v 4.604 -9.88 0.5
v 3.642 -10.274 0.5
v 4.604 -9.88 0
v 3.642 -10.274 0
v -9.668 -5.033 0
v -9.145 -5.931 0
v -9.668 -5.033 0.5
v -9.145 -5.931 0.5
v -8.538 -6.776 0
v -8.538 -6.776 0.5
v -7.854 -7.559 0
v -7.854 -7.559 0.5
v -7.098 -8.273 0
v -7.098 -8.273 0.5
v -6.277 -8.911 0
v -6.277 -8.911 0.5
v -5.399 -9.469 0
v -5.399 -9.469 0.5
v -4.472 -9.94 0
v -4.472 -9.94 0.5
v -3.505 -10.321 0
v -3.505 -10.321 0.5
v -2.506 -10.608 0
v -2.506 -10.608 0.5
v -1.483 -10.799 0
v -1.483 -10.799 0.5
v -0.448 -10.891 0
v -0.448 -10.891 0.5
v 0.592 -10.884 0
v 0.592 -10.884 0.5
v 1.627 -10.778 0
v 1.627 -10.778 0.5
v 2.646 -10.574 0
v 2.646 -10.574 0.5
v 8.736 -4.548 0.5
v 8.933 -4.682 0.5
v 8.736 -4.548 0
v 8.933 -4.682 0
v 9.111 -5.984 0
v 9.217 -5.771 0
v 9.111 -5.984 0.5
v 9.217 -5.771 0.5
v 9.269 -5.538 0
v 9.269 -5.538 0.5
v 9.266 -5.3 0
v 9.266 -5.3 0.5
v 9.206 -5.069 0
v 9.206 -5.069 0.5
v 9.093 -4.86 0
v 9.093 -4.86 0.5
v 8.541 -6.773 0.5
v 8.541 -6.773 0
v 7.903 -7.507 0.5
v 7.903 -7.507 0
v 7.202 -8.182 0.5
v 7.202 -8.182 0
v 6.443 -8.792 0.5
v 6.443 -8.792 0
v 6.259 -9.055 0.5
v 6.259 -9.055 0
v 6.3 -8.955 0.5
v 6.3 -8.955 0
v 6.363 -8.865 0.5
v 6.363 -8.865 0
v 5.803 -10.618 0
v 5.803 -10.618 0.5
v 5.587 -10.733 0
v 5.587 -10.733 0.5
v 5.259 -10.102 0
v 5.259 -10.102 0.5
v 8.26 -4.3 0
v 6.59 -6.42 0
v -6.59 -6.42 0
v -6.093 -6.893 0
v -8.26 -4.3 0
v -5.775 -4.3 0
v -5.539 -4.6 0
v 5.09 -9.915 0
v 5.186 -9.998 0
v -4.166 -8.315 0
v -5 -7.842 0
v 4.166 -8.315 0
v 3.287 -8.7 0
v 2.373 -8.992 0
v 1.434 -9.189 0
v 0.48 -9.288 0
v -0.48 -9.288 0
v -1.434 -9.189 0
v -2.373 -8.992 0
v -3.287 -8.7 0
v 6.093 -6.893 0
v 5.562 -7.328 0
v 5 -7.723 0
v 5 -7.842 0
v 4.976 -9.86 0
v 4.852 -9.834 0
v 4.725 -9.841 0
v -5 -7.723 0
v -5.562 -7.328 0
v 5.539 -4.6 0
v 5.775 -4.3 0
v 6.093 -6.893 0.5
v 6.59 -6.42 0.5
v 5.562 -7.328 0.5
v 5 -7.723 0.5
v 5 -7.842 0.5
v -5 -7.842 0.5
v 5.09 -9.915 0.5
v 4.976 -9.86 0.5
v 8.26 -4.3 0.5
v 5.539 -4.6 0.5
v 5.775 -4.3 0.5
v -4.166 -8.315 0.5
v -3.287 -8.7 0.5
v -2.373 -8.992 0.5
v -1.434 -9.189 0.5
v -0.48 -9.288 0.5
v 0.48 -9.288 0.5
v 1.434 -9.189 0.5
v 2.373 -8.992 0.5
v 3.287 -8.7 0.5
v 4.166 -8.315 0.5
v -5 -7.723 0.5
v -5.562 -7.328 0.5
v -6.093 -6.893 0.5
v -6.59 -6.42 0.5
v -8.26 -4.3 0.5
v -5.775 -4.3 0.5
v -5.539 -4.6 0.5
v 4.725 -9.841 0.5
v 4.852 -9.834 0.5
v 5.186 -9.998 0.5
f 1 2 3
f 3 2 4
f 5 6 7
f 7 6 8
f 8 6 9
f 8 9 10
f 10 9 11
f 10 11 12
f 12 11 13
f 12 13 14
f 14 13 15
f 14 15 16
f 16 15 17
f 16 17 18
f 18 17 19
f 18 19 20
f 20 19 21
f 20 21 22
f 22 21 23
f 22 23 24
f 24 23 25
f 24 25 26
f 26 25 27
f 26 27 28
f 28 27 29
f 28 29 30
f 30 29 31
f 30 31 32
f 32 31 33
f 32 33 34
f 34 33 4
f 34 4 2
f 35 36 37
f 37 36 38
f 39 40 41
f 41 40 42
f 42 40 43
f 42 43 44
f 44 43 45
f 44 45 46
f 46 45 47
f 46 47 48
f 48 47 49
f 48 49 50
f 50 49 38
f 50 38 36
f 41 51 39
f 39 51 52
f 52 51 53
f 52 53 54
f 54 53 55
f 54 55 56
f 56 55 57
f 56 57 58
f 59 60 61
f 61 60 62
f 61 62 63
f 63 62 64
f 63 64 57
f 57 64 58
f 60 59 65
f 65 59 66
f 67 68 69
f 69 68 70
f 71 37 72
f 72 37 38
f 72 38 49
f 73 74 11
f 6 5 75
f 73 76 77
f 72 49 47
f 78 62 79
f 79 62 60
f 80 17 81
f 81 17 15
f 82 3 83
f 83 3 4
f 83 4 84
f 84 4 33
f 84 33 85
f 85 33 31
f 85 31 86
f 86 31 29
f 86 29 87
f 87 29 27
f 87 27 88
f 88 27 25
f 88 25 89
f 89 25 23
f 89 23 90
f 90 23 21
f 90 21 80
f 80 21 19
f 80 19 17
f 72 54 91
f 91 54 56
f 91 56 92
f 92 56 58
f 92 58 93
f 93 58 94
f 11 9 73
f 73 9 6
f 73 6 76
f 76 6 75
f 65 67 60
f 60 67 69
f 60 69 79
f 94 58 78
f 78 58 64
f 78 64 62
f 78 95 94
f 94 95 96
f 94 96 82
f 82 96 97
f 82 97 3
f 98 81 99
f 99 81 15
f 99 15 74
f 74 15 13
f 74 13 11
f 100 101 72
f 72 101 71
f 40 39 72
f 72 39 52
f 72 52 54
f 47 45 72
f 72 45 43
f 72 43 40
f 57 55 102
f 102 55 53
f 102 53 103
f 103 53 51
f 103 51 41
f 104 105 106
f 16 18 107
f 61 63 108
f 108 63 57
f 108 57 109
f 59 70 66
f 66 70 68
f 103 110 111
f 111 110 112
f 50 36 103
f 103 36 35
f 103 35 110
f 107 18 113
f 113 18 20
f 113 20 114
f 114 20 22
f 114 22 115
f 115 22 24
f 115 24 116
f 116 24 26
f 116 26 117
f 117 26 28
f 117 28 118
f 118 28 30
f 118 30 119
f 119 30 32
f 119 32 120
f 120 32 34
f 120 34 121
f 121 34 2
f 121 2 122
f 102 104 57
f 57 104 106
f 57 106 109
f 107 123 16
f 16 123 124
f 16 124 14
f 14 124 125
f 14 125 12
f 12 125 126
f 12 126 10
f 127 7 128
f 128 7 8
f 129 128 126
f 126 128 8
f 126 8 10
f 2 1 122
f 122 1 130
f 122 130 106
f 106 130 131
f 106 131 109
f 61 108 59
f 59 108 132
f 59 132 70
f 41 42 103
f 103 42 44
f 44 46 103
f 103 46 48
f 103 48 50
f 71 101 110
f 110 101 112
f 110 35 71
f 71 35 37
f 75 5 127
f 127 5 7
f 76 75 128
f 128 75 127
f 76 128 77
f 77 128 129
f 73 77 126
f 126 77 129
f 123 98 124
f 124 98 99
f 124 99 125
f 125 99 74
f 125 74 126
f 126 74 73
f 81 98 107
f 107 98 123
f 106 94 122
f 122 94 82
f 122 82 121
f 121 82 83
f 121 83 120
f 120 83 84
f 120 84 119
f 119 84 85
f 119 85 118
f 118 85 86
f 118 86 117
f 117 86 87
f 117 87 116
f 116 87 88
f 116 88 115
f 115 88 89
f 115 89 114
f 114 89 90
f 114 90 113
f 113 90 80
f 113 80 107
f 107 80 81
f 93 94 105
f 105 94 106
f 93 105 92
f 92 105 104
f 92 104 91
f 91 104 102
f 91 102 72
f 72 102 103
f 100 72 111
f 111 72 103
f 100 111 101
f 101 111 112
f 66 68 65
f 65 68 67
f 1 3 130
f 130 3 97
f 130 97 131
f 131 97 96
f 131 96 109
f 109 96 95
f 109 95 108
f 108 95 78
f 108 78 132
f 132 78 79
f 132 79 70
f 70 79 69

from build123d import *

# Parameters (mm, degrees)
OTHER_10076_5_DEPTH = 0.5
CUT_EXTRUDE1_START  = -0.5
CUT_EXTRUDE1_DEPTH  = 0.5


# Read off the part's stored shape, not the designer's step: 10076-5
with BuildPart() as part:
    # Other 10076-5 outline → Other 10076-5 (new body)
    with BuildSketch(Plane.XY):
        with BuildLine():
            ThreePointArc((7.573674013, -9.436602245), (7.668819519, -9.359444812), (7.763179028, -9.281328104))
            Line((7.763179028, -9.281328104), (7.919995926, -7.488902759))
            ThreePointArc((7.919995926, -7.488902759), (8.548470738, -6.76266575), (9.110578105, -5.983925684))
            ThreePointArc((9.110578105, -5.983925684), (9.242448569, -5.182849851), (8.736493865, -4.547930843))
            Line((8.736493865, -4.547930843), (8.260223146, -4.3))
            Line((8.260223146, -4.3), (5.774945887, -4.3))
            ThreePointArc((5.774945887, -4.3), (5.659072475, -4.451392897), (5.53923133, -4.5996648))
            Line((5.53923133, -4.5996648), (6.59, -6.419649523))
            ThreePointArc((6.59, -6.419649523), (5.831509763, -7.1157216), (5, -7.722693831))
            Line((5, -7.722693831), (5, -7.841555968))
            ThreePointArc((5, -7.841555968), (0, -9.3), (-5, -7.841555968))
            Line((-5, -7.841555968), (-5, -7.722693831))
            ThreePointArc((-5, -7.722693831), (-5.831509763, -7.1157216), (-6.59, -6.419649523))
            Line((-6.59, -6.419649523), (-5.53923133, -4.5996648))
            ThreePointArc((-5.53923133, -4.5996648), (-5.659072475, -4.451392897), (-5.774945887, -4.3))
            Line((-5.774945887, -4.3), (-8.260223146, -4.3))
            Line((-8.260223146, -4.3), (-10.732831081, -5.58715822))
            ThreePointArc((-10.732831081, -5.58715822), (-10.675718173, -5.6955282), (-10.617511084, -5.803314431))
            Line((-10.617511084, -5.803314431), (-9.055174855, -6.258693914))
            ThreePointArc((-9.055174855, -6.258693914), (-8.704696722, -6.64117368), (-8.882127626, -7.128661083))
            Line((-8.882127626, -7.128661083), (-9.436602245, -7.573674013))
            ThreePointArc((-9.436602245, -7.573674013), (-9.359444812, -7.668819519), (-9.281328104, -7.763179028))
            Line((-9.281328104, -7.763179028), (-7.660171598, -7.905011844))
            ThreePointArc((-7.660171598, -7.905011844), (-7.241809703, -8.211767477), (-7.320727248, -8.724502998))
            Line((-7.320727248, -8.724502998), (-7.777730077, -9.269137762))
            ThreePointArc((-7.777730077, -9.269137762), (-7.683493234, -9.347402405), (-7.588468891, -9.424709008))
            Line((-7.588468891, -9.424709008), (-5.970792243, -9.247544602))
            ThreePointArc((-5.970792243, -9.247544602), (-5.500623999, -9.466787654), (-5.477995427, -9.985067155))
            Line((-5.477995427, -9.985067155), (-5.819964104, -10.608393744))
            ThreePointArc((-5.819964104, -10.608393744), (-5.712269322, -10.666769858), (-5.603989074, -10.724052707))
            Line((-5.603989074, -10.724052707), (-4.05195869, -10.234699407))
            ThreePointArc((-4.05195869, -10.234699407), (-3.548052399, -10.358004491), (-3.424747314, -10.861910782))
            Line((-3.424747314, -10.861910782), (-3.638540174, -11.539975104))
            ThreePointArc((-3.638540174, -11.539975104), (-3.521526102, -11.576219327), (-3.404151099, -11.611277074))
            Line((-3.404151099, -11.611277074), (-1.977410637, -10.828540453))
            ThreePointArc((-1.977410637, -10.828540453), (-1.459131136, -10.851169025), (-1.239888083, -11.321337268))
            Line((-1.239888083, -11.321337268), (-1.317289186, -12.028081692))
            ThreePointArc((-1.317289186, -12.028081692), (-1.195452609, -12.04080118), (-1.073493507, -12.052286575))
            Line((-1.073493507, -12.052286575), (0.173128198, -11.006246762))
            ThreePointArc((0.173128198, -11.006246762), (0.685863719, -10.927329218), (0.992619352, -11.345691113))
            Line((0.992619352, -11.345691113), (1.054584487, -12.053955847))
            ThreePointArc((1.054584487, -12.053955847), (1.176561457, -12.042661796), (1.298417839, -12.030133462))
            Line((1.298417839, -12.030133462), (2.317013814, -10.760989181))
            ThreePointArc((2.317013814, -10.760989181), (2.804501216, -10.583558277), (3.186980982, -10.93403641))
            Line((3.186980982, -10.93403641), (3.38593107, -11.616603238))
            ThreePointArc((3.38593107, -11.616603238), (3.503360927, -11.581729673), (3.620431715, -11.545669067))
            Line((3.620431715, -11.545669067), (4.371857887, -10.10219282))
            ThreePointArc((4.371857887, -10.10219282), (4.815363304, -9.833067127), (5.258868721, -10.10219282))
            Line((5.258868721, -10.10219282), (5.58715822, -10.732831081))
            ThreePointArc((5.58715822, -10.732831081), (5.6955282, -10.675718173), (5.803314431, -10.617511084))
            Line((5.803314431, -10.617511084), (6.258693914, -9.055174855))
            ThreePointArc((6.258693914, -9.055174855), (6.64117368, -8.704696722), (7.128661083, -8.882127626))
            Line((7.128661083, -8.882127626), (7.573674013, -9.436602245))
        make_face()
    extrude(amount=OTHER_10076_5_DEPTH)

    # Sketch1 → Cut-Extrude1 (cut)
    with BuildSketch(Plane.XY.offset(0.5).offset(CUT_EXTRUDE1_START)):
        with BuildLine():
            Line((-9.668418082, -5.033059884), (-10.732831081, -5.58715822))
            ThreePointArc((-10.732831081, -5.58715822), (-4.639236905, -11.175306749), (3.620431715, -11.545669067))
            Line((3.620431715, -11.545669067), (4.371857887, -10.10219282))
            ThreePointArc((4.371857887, -10.10219282), (4.469650209, -9.971843573), (4.604163159, -9.879862428))
            ThreePointArc((4.604163159, -9.879862428), (-3.50493127, -10.321117032), (-9.668418082, -5.033059884))
        make_face()
        with BuildLine():
            Line((7.573674013, -9.436602245), (7.128661083, -8.882127626))
            ThreePointArc((7.128661083, -8.882127626), (6.804041546, -8.699374782), (6.443160998, -8.791795969))
            ThreePointArc((6.443160998, -8.791795969), (7.211064546, -8.173771964), (7.919995926, -7.488902759))
            Line((7.919995926, -7.488902759), (7.763179028, -9.281328104))
            ThreePointArc((7.763179028, -9.281328104), (7.668819519, -9.359444812), (7.573674013, -9.436602245))
        make_face()
    extrude(amount=CUT_EXTRUDE1_DEPTH, mode=Mode.SUBTRACT)


solid = part.part
